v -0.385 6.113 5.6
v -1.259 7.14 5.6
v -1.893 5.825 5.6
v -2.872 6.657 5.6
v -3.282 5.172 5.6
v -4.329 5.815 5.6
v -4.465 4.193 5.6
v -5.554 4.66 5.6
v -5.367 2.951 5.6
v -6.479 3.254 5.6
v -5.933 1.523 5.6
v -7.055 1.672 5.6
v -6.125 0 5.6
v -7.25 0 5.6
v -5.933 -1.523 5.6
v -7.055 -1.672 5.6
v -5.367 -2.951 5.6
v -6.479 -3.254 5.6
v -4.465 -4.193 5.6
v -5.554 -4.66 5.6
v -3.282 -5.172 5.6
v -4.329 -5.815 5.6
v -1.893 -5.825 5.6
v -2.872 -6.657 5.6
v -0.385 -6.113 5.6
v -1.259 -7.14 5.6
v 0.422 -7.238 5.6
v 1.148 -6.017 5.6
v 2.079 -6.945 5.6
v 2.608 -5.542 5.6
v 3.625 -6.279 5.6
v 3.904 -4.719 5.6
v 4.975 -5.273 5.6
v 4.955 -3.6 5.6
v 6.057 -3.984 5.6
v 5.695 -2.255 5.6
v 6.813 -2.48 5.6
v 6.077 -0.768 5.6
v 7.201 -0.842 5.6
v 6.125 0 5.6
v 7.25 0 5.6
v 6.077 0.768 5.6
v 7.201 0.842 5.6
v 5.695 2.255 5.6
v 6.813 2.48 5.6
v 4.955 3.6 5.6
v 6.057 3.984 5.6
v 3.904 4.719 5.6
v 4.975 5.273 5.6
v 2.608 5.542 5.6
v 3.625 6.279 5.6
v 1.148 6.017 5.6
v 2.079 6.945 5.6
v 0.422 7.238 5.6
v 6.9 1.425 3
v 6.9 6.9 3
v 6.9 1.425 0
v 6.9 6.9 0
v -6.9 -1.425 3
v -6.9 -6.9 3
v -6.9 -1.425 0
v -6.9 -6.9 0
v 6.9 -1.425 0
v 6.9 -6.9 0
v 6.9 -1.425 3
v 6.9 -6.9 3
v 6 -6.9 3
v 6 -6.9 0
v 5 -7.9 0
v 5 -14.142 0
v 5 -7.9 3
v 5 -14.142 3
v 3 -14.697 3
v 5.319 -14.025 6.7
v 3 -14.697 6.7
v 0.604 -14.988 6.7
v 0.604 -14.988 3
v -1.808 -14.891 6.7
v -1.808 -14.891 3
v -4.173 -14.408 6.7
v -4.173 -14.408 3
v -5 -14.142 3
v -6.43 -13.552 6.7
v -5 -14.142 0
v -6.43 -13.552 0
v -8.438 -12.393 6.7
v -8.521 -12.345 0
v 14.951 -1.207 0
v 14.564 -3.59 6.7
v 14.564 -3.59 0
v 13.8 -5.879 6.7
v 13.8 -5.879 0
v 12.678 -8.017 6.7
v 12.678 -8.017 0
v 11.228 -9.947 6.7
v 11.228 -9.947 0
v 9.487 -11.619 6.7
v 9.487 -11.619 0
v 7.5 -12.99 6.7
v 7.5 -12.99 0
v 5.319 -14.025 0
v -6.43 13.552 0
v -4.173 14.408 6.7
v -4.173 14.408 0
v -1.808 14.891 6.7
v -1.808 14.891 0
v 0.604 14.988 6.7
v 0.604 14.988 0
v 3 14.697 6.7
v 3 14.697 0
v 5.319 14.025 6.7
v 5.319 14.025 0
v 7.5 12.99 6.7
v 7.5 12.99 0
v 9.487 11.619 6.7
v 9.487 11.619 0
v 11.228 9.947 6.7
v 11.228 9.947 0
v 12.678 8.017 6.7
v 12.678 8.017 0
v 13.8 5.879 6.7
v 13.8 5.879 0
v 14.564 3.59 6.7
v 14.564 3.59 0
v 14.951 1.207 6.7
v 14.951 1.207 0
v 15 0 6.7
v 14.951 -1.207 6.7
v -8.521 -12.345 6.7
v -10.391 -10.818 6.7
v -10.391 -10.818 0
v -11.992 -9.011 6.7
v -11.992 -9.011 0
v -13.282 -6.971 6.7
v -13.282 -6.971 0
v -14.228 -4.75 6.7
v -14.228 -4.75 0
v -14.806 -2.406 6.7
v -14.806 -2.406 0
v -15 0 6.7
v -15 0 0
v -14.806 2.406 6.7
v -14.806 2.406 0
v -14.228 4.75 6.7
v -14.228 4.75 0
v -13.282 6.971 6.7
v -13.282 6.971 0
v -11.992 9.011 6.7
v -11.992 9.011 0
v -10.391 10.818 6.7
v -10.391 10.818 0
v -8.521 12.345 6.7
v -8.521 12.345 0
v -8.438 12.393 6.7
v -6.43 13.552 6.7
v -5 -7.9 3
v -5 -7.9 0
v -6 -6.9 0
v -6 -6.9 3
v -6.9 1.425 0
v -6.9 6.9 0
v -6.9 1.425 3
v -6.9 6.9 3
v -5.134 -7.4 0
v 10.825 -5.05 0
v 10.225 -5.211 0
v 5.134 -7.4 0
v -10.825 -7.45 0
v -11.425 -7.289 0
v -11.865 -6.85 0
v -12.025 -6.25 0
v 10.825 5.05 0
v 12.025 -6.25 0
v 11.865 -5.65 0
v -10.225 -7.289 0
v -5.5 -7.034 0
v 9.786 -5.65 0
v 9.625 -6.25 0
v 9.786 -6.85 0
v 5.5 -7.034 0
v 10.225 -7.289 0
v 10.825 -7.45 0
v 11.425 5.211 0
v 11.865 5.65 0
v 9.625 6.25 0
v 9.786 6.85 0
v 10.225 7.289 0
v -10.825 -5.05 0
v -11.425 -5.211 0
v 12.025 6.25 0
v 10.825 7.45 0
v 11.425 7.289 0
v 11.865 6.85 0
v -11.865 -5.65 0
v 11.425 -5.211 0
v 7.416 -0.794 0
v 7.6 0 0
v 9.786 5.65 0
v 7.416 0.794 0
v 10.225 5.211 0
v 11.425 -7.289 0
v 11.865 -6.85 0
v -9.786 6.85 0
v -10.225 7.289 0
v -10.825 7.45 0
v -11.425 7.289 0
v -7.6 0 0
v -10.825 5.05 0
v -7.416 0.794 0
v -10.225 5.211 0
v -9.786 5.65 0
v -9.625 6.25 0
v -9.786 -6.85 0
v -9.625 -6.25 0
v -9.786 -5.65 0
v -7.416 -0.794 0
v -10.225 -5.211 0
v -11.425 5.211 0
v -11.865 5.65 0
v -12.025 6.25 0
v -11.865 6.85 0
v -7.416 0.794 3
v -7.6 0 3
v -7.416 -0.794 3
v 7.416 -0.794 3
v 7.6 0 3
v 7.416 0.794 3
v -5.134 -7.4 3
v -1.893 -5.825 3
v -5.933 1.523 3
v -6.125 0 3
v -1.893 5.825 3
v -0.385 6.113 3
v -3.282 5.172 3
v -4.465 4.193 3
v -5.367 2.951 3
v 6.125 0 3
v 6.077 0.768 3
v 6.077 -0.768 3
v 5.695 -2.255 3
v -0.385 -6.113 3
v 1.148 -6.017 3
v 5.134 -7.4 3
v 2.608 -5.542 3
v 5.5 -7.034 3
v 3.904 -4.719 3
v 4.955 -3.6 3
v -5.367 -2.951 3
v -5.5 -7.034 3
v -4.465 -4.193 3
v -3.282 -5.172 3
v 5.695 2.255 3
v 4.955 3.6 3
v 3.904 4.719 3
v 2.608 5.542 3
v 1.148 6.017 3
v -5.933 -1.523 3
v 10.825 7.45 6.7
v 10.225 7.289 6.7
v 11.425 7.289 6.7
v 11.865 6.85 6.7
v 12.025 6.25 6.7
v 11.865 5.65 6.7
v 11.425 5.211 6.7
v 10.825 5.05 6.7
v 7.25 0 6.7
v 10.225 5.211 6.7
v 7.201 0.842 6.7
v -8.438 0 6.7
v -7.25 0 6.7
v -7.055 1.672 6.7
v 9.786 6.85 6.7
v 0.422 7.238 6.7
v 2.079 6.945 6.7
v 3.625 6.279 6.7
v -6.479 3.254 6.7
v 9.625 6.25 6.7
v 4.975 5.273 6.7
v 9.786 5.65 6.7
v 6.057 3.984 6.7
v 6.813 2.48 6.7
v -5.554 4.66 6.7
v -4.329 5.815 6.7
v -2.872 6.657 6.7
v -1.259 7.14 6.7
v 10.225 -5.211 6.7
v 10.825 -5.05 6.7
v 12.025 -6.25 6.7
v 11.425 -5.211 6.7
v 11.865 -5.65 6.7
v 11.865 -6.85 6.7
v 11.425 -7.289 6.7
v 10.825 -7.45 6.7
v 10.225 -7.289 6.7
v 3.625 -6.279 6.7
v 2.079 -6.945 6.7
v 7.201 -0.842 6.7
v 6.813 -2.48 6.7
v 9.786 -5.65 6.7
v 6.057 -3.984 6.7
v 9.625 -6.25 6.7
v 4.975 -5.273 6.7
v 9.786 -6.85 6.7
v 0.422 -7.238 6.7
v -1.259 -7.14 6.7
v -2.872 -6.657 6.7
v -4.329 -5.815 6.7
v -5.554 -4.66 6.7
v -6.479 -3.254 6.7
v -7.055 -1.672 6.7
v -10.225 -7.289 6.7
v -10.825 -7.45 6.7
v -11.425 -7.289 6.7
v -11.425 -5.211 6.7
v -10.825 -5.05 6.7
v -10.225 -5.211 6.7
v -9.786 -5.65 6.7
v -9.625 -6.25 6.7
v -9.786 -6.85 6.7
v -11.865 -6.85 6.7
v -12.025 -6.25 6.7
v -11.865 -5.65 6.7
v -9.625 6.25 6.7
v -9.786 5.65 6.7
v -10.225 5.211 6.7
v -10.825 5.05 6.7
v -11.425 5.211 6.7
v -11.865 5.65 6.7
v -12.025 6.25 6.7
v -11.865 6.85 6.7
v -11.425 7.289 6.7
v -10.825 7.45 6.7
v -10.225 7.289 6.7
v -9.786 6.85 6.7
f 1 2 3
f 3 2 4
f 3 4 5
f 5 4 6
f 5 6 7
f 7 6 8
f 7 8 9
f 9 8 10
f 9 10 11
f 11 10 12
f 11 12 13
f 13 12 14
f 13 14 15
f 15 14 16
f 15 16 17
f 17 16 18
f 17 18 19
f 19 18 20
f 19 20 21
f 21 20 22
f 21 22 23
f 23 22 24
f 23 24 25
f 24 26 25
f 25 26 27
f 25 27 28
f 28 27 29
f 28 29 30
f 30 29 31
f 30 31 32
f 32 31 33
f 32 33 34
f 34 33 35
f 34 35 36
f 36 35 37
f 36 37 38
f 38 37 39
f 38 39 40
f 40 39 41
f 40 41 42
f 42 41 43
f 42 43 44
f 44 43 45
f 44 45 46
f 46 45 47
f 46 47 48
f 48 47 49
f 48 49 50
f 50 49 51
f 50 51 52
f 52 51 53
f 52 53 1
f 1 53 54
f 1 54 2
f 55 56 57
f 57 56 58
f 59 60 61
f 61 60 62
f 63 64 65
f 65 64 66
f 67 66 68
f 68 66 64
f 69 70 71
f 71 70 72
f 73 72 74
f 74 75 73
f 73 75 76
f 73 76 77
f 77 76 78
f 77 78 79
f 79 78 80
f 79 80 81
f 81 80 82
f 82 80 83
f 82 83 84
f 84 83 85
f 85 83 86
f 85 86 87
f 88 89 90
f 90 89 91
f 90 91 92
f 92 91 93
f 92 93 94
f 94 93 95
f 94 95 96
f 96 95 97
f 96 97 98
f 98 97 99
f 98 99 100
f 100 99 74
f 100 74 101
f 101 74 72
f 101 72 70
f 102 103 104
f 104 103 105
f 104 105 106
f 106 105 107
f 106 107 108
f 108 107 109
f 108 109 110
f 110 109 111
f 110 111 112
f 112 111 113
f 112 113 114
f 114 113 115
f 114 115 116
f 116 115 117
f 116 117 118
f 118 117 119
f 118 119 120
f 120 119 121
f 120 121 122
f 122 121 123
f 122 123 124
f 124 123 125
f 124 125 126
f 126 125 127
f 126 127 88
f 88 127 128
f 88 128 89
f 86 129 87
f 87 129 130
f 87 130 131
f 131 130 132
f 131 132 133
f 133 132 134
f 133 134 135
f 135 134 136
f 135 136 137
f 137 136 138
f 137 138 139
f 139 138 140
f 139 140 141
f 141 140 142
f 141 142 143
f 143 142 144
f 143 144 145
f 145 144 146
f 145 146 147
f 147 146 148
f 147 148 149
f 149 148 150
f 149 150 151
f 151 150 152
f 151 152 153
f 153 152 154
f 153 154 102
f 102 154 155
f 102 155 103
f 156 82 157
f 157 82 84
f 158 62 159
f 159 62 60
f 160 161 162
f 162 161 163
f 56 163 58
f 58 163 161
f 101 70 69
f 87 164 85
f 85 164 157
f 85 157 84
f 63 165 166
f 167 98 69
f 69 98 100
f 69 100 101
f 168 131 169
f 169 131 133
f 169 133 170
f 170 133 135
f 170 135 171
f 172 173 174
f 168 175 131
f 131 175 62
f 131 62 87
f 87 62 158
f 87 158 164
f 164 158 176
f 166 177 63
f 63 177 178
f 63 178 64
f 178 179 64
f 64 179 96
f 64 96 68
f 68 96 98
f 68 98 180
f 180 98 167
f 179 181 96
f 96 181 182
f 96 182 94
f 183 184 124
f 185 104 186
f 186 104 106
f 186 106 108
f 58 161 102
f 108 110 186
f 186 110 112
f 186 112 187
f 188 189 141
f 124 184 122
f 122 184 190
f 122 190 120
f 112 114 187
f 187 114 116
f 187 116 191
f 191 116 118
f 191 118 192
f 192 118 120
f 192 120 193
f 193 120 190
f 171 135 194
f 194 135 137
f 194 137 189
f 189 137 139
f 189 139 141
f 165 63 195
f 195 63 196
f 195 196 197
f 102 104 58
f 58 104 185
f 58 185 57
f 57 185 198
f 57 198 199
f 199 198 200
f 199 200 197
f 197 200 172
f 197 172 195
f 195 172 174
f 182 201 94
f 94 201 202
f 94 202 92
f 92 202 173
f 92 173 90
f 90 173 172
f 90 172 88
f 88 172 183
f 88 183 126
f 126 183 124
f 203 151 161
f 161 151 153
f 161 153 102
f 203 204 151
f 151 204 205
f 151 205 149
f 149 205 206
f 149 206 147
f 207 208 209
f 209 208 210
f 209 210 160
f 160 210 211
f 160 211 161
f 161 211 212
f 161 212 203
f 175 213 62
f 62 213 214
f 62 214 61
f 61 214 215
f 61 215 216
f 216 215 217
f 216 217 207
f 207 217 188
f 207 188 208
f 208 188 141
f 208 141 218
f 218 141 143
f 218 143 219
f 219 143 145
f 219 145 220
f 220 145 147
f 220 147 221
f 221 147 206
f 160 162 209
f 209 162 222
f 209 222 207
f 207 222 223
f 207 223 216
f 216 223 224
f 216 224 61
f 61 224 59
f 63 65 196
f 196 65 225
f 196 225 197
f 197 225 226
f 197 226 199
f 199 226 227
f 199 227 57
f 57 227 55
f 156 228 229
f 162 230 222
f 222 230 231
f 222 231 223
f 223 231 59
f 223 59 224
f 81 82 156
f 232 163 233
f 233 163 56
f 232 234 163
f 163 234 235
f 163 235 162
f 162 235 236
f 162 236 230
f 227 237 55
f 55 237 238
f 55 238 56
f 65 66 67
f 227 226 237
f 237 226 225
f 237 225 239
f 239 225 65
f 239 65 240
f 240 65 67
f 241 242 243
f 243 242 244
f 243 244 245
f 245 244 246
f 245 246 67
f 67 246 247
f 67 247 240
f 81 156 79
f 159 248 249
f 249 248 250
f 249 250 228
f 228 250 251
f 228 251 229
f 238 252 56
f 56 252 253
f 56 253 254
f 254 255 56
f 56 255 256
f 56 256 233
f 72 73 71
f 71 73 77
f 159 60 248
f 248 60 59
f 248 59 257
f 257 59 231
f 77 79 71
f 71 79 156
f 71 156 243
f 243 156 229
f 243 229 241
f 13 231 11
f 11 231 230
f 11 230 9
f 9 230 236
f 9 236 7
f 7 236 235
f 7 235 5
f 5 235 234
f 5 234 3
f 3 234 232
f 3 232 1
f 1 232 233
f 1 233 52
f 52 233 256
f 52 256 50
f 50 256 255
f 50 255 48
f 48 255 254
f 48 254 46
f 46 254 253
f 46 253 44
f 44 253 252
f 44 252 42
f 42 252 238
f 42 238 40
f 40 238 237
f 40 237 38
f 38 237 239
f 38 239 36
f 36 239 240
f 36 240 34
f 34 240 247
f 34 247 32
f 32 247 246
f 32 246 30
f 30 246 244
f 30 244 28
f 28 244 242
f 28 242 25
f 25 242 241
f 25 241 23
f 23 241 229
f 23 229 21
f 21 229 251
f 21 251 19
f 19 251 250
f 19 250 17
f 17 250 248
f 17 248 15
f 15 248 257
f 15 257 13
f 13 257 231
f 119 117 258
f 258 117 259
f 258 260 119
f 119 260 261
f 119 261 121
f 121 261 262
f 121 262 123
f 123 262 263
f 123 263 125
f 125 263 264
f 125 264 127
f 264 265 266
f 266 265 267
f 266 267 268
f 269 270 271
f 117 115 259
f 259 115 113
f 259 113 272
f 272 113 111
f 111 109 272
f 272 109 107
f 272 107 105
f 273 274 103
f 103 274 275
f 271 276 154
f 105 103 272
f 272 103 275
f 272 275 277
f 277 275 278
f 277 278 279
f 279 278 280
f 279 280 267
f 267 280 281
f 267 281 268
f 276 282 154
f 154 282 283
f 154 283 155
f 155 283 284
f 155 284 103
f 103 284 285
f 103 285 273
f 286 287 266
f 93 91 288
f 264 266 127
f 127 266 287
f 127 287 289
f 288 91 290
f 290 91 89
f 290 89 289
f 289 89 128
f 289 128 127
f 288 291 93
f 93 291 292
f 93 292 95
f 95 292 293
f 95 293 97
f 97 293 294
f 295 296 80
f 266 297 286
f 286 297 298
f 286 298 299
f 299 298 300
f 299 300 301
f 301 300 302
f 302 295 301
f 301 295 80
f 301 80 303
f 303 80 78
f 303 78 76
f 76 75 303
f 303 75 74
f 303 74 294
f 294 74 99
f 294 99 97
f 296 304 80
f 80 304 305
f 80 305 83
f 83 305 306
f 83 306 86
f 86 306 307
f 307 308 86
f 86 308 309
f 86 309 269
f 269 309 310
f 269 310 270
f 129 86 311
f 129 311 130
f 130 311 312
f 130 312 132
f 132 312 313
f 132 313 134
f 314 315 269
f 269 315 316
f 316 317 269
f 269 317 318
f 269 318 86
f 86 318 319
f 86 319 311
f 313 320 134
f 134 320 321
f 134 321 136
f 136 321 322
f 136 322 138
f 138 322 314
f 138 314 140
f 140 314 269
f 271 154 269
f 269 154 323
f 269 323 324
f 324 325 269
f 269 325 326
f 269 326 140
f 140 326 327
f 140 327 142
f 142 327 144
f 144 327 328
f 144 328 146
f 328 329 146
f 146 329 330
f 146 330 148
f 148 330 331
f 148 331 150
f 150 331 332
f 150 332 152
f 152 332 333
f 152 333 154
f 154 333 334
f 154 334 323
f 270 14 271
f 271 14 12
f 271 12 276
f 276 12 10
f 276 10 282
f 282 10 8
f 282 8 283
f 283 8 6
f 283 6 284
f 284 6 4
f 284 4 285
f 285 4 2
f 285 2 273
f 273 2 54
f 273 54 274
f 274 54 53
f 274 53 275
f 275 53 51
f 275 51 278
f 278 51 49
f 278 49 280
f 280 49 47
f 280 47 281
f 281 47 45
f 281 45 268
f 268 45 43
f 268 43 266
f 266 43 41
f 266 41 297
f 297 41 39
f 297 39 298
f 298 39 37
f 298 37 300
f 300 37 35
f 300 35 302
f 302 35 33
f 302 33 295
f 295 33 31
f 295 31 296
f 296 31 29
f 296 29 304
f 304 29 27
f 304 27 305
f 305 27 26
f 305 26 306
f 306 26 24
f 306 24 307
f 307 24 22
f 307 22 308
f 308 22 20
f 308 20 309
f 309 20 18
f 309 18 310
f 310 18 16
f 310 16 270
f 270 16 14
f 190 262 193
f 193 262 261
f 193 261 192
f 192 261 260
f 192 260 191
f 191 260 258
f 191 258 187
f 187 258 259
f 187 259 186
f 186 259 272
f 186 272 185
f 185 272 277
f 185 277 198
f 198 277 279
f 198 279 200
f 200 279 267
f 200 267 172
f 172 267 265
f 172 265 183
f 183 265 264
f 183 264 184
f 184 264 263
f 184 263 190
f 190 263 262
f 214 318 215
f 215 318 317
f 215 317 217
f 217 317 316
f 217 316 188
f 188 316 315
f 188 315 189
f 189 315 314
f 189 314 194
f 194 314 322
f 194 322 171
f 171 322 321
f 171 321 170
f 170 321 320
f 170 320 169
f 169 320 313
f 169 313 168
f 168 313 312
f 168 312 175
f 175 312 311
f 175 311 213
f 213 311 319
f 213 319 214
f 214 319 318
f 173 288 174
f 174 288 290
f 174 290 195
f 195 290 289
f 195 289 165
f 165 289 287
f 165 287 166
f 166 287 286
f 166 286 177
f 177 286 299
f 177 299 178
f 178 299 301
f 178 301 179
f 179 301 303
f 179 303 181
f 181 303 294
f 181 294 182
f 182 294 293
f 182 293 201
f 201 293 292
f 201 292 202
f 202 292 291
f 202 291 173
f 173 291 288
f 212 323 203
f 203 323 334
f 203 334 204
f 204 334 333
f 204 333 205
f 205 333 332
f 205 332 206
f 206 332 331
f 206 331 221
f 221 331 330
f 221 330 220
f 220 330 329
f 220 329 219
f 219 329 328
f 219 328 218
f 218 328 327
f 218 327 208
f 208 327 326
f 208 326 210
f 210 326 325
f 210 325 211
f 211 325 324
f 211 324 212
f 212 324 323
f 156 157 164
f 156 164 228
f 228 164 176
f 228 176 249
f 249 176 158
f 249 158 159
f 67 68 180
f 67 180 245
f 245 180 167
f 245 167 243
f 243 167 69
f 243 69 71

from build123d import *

# Parameters (mm, degrees)
EXTRUDE_1_DEPTH     = 3
CUT_EXTRUDE_4_DEPTH = 4
SKETCH_12_R         = 15
SKETCH_12_R_2       = 6.125
EXTRUDE_2_DEPTH     = 2.6
SKETCH_13_R         = 15
SKETCH_13_R_2       = 7.25
EXTRUDE_3_DEPTH     = 1.1
SKETCH_14_R         = 1.2
CUT_EXTRUDE_5_DEPTH = 7.7
FILLET_1_R          = 1


with BuildPart() as part:
    # 스케치1 → 보스-돌출1 (new body)
    with BuildSketch(Plane.XY):
        with BuildLine():
            Line((-5, -6.9), (-6.9, -6.9))
            Line((-6.9, -6.9), (-6.9, 6.9))
            Line((-6.9, 6.9), (6.9, 6.9))
            Line((6.9, 6.9), (6.9, -6.9))
            Line((6.9, -6.9), (5, -6.9))
            Line((5, -6.9), (5, -14.142135624))
            ThreePointArc((5, -14.142135624), (0, 15), (-5, -14.142135624))
            Line((-5, -14.142135624), (-5, -6.9))
        make_face()
    extrude(amount=EXTRUDE_1_DEPTH)

    # 스케치11 → 컷-돌출4 (cut, through all)
    with BuildSketch(Plane.XY.offset(3)):
        with BuildLine():
            Line((5.8, -1.8), (-5.8, -1.8))
            ThreePointArc((-5.8, -1.8), (-7.6, 0), (-5.8, 1.8))
            Line((-5.8, 1.8), (5.8, 1.8))
            ThreePointArc((5.8, 1.8), (7.6, 0), (5.8, -1.8))
        make_face()
    extrude(amount=-CUT_EXTRUDE_4_DEPTH, mode=Mode.SUBTRACT)

    # 스케치12 → 보스-돌출2 (add)
    with BuildSketch(Plane.XY.offset(3)):
        Circle(SKETCH_12_R)
        Circle(SKETCH_12_R_2, mode=Mode.SUBTRACT)
    extrude(amount=EXTRUDE_2_DEPTH)

    # 스케치13 → 보스-돌출3 (add)
    with BuildSketch(Plane.XY.offset(5.6)):
        Circle(SKETCH_13_R)
        Circle(SKETCH_13_R_2, mode=Mode.SUBTRACT)
    extrude(amount=EXTRUDE_3_DEPTH)

    # 스케치14 → 컷-돌출5 (cut, through all)
    with BuildSketch(Plane.XY.offset(6.7)):
        with Locations((10.825317547, 6.25)):
            Circle(SKETCH_14_R)
        with Locations((-10.825317547, 6.25)):
            Circle(SKETCH_14_R)
        with Locations((10.825317547, -6.25)):
            Circle(SKETCH_14_R)
        with Locations((-10.825317547, -6.25)):
            Circle(SKETCH_14_R)
    extrude(amount=-CUT_EXTRUDE_5_DEPTH, mode=Mode.SUBTRACT)

    # 필렛1
    fillet_1_edges = [part.edges().sort_by_distance(p)[0] for p in [
        (-5, -6.9, 1.5),
        (5, -6.9, 1.5),
    ]]
    fillet(fillet_1_edges, radius=FILLET_1_R)


solid = part.part
